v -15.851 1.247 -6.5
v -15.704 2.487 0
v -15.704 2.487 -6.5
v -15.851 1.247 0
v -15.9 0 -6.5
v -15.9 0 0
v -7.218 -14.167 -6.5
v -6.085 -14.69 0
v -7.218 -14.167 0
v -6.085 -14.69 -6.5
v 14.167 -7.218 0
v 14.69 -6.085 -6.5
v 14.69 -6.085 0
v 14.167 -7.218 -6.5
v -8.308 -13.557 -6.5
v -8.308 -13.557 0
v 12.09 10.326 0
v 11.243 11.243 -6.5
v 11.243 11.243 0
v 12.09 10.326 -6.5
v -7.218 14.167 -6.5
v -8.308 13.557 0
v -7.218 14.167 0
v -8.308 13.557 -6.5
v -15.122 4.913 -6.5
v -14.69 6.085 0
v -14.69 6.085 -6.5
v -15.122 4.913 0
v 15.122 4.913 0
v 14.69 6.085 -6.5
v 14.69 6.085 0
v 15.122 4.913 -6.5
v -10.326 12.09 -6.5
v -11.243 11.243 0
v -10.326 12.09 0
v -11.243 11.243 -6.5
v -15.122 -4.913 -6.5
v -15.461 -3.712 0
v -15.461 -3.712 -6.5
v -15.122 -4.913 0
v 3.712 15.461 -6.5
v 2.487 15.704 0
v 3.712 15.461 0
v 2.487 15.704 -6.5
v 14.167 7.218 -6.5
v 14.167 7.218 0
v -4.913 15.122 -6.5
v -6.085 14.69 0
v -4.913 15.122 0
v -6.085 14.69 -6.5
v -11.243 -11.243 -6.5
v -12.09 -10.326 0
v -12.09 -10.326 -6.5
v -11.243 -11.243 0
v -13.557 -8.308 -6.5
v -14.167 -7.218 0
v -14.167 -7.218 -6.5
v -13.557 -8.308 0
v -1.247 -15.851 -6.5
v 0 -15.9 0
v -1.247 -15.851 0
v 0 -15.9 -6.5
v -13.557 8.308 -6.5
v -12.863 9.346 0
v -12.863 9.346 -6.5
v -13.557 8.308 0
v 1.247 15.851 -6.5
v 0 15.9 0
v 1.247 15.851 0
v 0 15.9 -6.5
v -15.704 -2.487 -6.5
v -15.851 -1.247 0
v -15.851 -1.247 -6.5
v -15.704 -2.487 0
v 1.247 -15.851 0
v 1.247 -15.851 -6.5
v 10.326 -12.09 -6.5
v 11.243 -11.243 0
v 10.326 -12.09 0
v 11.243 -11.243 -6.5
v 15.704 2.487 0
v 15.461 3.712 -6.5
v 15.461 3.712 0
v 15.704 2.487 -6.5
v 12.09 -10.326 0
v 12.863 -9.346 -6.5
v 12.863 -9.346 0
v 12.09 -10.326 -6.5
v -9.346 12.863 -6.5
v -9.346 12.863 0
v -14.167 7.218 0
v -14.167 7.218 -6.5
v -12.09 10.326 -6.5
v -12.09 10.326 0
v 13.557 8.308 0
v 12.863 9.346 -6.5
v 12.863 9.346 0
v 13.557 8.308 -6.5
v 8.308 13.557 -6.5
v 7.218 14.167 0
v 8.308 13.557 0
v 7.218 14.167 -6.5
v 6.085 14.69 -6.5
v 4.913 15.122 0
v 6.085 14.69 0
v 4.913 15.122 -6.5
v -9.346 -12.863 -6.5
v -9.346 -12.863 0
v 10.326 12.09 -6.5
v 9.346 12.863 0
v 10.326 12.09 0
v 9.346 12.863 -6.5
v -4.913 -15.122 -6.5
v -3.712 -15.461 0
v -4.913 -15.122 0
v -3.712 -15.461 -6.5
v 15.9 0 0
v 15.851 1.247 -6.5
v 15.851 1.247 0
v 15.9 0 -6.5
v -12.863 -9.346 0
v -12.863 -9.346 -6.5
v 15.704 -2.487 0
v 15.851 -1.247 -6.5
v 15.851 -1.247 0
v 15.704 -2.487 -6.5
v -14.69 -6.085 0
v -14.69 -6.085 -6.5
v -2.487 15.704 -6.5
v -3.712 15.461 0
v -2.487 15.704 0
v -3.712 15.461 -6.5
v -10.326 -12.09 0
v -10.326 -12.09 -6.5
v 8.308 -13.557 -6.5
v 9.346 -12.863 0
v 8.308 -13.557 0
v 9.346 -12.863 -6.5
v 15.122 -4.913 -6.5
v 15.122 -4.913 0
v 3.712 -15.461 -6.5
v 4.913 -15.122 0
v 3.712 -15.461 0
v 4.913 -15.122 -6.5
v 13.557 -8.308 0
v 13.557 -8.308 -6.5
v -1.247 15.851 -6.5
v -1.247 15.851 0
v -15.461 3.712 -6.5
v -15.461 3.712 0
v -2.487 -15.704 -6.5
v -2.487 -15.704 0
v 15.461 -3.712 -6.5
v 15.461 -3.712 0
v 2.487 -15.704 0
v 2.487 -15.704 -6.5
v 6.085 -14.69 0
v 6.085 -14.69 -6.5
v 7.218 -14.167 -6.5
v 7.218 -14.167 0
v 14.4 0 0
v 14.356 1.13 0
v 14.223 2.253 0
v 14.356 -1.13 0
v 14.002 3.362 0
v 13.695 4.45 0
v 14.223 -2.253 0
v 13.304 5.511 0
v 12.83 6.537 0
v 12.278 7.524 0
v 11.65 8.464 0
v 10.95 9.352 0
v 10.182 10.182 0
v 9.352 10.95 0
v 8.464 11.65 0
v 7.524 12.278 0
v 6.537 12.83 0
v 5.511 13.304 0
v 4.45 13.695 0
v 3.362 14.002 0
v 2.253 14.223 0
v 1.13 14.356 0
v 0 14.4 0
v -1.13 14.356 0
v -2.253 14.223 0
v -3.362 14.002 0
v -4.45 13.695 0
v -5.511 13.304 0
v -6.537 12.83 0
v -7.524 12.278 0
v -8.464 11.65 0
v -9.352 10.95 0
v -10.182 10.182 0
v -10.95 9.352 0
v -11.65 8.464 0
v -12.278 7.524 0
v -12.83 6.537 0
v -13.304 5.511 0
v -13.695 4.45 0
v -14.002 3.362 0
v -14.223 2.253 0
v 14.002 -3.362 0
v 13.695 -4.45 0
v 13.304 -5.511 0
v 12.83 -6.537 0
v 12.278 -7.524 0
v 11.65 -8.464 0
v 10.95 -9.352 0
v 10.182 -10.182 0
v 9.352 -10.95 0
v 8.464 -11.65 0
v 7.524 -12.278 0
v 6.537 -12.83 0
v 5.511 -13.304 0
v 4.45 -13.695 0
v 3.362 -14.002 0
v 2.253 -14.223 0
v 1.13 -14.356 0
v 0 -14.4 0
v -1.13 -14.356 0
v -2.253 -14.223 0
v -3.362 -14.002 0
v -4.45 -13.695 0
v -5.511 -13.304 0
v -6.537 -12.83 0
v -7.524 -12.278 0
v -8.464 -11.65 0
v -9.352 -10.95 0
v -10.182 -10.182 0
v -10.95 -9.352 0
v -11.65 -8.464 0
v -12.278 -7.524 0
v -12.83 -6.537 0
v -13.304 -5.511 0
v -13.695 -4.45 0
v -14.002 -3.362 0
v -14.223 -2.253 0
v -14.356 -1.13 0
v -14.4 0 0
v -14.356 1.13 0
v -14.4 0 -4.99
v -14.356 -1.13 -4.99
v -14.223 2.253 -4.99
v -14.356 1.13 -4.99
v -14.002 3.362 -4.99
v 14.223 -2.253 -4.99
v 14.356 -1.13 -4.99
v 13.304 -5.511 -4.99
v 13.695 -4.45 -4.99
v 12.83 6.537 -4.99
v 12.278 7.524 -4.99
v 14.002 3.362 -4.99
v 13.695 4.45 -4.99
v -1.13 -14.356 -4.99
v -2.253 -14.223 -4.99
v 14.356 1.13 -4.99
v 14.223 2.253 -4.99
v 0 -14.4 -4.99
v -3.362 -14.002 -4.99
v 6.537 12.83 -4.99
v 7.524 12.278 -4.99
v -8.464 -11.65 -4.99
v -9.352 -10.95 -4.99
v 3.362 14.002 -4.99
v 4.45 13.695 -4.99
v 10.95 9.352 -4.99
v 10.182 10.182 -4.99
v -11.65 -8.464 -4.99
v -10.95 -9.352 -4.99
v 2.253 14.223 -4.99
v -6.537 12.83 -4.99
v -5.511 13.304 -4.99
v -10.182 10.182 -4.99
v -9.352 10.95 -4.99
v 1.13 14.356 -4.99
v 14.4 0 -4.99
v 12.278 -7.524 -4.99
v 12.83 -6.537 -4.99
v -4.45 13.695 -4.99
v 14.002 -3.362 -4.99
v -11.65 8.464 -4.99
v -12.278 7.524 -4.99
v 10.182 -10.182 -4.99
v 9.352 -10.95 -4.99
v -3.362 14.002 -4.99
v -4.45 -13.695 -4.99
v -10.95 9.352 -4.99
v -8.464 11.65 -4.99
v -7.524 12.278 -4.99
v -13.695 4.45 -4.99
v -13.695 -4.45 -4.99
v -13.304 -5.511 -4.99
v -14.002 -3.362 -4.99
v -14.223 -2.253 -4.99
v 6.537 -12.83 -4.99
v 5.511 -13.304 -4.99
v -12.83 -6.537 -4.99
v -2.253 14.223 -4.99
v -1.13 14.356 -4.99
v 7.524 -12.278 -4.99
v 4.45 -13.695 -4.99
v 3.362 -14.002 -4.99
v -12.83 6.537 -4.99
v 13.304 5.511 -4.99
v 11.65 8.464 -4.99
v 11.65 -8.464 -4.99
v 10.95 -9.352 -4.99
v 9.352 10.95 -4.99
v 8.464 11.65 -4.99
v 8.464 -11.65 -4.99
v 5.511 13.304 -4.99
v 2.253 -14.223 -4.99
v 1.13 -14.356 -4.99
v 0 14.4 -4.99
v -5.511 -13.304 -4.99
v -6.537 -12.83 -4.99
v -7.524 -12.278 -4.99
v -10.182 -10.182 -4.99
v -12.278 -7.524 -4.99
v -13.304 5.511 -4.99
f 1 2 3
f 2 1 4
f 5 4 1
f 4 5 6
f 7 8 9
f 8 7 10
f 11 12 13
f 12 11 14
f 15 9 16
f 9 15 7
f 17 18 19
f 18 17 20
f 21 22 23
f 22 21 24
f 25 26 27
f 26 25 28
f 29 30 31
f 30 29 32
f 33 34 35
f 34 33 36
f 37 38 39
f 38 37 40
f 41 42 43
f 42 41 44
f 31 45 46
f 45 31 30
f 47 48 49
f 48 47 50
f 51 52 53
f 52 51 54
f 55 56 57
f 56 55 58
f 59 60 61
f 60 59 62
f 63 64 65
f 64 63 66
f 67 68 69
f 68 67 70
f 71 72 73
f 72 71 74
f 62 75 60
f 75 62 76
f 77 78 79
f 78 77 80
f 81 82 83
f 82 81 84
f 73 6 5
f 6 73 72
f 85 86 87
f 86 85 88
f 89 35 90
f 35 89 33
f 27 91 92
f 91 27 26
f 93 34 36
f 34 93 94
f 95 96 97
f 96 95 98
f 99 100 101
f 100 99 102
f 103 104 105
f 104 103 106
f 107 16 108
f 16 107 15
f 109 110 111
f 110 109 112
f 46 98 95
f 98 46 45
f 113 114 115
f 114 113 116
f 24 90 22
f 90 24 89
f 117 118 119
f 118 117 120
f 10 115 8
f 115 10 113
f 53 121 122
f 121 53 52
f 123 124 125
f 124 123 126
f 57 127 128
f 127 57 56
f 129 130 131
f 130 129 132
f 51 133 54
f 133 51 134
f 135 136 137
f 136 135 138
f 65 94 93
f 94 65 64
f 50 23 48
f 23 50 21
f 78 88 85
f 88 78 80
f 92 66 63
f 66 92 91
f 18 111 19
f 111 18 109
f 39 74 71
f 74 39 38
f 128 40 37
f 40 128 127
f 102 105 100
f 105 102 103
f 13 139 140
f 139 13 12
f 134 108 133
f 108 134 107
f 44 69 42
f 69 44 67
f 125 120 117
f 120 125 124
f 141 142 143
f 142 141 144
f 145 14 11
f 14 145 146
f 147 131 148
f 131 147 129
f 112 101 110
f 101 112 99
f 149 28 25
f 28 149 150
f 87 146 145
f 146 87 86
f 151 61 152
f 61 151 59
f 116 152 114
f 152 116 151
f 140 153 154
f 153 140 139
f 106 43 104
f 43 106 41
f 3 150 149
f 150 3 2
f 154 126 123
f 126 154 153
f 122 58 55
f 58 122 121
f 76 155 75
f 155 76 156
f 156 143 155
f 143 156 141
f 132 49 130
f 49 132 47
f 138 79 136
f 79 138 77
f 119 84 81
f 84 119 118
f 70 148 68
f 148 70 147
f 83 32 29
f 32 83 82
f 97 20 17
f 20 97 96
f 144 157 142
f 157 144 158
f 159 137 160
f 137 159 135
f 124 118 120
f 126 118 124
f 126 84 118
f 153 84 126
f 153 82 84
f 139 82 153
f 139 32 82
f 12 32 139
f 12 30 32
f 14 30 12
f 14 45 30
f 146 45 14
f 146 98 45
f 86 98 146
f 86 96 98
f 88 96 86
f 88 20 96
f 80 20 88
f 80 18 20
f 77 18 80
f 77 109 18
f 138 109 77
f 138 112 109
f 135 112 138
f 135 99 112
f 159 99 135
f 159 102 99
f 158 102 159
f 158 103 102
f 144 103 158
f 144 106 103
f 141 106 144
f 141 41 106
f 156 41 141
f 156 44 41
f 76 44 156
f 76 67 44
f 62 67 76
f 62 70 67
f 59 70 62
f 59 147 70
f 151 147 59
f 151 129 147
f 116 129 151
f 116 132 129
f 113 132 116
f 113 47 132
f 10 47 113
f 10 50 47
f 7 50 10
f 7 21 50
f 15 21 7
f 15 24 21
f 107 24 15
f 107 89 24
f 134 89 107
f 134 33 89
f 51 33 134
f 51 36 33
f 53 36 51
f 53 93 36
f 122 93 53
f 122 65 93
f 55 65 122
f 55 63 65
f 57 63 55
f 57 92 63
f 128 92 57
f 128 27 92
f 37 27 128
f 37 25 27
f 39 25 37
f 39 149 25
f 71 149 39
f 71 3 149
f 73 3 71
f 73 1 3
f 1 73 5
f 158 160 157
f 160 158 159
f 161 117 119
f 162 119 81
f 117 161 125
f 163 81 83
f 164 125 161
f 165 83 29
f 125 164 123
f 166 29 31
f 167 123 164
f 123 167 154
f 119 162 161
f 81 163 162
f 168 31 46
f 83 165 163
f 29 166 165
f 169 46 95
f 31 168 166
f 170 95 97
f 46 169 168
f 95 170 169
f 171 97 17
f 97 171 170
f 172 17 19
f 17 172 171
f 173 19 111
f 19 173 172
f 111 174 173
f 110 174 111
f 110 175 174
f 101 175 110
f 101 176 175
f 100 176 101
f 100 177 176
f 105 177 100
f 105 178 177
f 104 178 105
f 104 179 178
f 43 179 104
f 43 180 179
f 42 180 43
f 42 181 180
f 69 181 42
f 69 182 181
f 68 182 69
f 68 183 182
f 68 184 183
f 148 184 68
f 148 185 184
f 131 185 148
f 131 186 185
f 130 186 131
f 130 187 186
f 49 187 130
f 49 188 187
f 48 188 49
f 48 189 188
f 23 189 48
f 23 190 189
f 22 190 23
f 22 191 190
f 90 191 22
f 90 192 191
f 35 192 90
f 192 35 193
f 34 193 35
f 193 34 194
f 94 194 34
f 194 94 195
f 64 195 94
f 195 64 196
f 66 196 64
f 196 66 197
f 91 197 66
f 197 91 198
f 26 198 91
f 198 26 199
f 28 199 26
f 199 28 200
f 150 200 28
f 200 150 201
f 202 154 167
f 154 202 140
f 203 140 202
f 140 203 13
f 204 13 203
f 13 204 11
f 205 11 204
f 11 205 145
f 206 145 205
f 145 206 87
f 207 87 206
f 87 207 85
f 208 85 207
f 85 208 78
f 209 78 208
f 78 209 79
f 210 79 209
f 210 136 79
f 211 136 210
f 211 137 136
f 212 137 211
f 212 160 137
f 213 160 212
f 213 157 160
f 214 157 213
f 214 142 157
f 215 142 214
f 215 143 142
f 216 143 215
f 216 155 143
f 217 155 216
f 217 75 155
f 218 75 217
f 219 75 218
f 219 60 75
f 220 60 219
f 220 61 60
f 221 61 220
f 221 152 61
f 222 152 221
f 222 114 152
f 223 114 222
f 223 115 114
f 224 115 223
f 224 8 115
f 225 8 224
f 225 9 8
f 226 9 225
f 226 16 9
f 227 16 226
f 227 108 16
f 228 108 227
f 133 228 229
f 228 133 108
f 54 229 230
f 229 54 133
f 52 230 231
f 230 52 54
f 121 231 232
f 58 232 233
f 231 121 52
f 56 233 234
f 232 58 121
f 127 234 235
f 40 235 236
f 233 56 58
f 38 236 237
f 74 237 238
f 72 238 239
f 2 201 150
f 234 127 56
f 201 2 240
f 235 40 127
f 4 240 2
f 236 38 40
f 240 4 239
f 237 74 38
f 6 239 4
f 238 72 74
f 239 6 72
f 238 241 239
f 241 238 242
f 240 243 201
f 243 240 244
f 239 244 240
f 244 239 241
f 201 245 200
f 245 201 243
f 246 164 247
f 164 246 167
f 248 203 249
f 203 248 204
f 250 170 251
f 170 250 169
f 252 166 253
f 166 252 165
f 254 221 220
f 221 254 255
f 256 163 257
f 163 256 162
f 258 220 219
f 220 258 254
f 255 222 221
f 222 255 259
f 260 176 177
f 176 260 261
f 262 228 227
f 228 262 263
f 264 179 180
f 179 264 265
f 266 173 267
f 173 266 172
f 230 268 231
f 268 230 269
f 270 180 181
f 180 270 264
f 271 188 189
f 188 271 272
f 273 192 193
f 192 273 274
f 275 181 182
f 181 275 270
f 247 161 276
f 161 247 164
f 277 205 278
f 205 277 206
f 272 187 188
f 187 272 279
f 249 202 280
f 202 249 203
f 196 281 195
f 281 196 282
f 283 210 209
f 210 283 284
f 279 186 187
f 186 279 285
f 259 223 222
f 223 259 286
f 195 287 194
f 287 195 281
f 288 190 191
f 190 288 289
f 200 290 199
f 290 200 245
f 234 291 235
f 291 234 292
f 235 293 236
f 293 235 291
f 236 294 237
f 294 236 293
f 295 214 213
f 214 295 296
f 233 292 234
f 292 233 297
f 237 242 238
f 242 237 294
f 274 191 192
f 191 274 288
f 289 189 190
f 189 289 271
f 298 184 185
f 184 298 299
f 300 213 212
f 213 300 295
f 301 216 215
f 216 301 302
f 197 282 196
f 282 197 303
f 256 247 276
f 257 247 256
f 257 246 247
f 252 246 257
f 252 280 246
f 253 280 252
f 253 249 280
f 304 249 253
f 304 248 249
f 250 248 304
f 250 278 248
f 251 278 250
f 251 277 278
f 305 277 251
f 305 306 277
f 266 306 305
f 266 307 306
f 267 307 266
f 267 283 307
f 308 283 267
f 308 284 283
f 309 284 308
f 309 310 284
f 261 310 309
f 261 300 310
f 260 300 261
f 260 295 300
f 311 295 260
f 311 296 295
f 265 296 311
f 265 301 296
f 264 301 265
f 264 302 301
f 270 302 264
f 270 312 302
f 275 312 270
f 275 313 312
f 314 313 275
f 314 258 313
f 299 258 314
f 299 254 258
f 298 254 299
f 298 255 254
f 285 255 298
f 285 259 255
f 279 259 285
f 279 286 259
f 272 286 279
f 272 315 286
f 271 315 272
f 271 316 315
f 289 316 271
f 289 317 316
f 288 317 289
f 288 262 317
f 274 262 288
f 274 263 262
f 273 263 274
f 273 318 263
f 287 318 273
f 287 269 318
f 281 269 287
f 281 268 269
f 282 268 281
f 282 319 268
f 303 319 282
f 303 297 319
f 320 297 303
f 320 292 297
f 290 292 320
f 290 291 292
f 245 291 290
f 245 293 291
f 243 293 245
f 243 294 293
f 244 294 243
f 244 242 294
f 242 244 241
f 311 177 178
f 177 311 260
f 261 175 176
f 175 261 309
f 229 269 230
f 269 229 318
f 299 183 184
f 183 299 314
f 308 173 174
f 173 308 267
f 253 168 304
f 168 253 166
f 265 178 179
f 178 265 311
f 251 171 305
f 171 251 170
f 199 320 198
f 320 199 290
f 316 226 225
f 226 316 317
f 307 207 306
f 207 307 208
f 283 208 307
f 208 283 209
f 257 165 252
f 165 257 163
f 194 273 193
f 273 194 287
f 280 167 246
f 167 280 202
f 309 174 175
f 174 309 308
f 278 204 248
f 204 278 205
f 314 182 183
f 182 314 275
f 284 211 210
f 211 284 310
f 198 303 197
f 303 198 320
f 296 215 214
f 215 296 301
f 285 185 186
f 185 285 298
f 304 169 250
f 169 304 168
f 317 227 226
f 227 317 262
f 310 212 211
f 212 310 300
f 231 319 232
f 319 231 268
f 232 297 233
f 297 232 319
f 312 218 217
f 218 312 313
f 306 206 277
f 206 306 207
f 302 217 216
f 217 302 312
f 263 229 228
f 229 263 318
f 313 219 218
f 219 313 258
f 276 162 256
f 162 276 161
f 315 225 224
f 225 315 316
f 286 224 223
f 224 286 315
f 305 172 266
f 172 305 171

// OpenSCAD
innerDiameter       = 28.8;
height              = 5;
thickness           = 1.5;
manifoldCorrection  = 0.01;


$fn = 80;

rotate( [0, 180, 0] )
    difference()
    {
        cylinder(d=innerDiameter + thickness * 2, h = height + thickness);
        translate( [0, 0, -manifoldCorrection] )
            cylinder(d=innerDiameter, h = height);
    }
